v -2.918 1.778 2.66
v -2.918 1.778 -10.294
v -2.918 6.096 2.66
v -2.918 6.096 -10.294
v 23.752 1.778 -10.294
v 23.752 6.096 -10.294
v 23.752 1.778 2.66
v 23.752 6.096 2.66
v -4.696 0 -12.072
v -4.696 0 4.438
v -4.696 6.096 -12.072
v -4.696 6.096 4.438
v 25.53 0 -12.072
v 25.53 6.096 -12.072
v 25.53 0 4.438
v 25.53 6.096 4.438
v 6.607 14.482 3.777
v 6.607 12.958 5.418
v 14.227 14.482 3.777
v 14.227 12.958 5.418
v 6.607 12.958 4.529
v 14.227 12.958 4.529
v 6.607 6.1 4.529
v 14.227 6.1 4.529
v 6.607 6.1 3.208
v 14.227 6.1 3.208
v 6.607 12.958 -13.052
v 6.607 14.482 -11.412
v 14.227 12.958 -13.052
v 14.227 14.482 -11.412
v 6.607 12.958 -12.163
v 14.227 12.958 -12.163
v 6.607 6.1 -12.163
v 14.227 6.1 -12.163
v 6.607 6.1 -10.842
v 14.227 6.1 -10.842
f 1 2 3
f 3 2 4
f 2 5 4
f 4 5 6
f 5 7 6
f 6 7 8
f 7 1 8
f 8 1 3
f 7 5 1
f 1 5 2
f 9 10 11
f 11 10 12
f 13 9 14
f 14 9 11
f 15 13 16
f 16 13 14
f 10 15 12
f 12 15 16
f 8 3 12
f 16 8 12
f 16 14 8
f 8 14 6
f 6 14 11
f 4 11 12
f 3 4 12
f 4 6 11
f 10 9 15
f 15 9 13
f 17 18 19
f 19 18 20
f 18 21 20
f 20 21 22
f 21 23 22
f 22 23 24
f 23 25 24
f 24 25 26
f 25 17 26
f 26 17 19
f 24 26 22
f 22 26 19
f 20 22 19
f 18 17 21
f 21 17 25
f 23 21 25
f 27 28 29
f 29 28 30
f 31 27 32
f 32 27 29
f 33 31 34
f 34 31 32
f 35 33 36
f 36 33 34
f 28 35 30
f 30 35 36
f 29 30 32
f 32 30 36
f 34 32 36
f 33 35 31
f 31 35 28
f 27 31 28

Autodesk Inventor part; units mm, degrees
ref_plane "YZ Plane" through (0, 0, 0) normal (1, 0, 0) x (0, 1, 0)
ref_plane "XZ Plane" through (0, 0, 0) normal (0, 1, 0) x (-1, 0, 0)
ref_plane "XY Plane" through (0, 0, 0) normal (0, 0, 1) x (1, 0, 0)
sketch "Sketch1" plane through (0, 0, 0) normal (0, 1, 0) x (-1, 0, 0)
  line L0 (4.6963, 4.4378) -> (-25.5297, 4.4378)
  line L1 (-25.5297, 4.4378) -> (-25.5297, -12.0722)
  line L2 (-25.5297, -12.0722) -> (4.6963, -12.0722)
  line L3 (4.6963, -12.0722) -> (4.6963, 4.4378)
  point P0 (0, 0)
  dimension "d0" = 30.226
  dimension "d1" = 16.51
extrude "Extrusion1" add sketch "Sketch1" along normal blind 6.096
shell "Shell1" thickness 1.778 removed faces 1 at (15.4543, 6.096, -1.0655)
sketch "Sketch2" plane through (25.5297, 0, 4.4378) normal (1, 0, 0) x (0, 0, -1)
  line L0 (0, -1.7234) -> (-0.5693, -10.1054)
  line L1 (0, -1.7234) -> (8.382, -1.7234) construction
  line L2 (-0.5693, -10.1054) -> (0.7515, -10.1054)
  line L3 (0.7515, -10.1054) -> (0.7515, -3.2474)
  line L4 (0.7515, -3.2474) -> (1.6405, -3.2474)
  line L5 (1.6405, -3.2474) -> (0, -1.7234)
  point P0 (4.4378, 0)
  dimension "d5" = 8.4013
  dimension "d6" = 93.886
  dimension "d7" = 1.3208
  dimension "d8" = 6.858
  dimension "d9" = 0.889
extrude "Extrusion3" add sketch "Sketch2" along normal blind 7.62 separate body
move or copy body "Move Body5" bodies to move or copy 2 copy no translate (-18.923, 16.2052, -15.8496)
ref_plane "Work Plane1" through (-4.6963, 0, -3.8172) normal (0, 0, 1) x (1, 0, 0)
mirror "Mirror1" about plane through (-4.6963, 0, -3.8172) normal (0, 0, 1) bodies 2
combine bodies "Combine1" operation type add bodies to combine 2 1
properties part number "ptt-button"
